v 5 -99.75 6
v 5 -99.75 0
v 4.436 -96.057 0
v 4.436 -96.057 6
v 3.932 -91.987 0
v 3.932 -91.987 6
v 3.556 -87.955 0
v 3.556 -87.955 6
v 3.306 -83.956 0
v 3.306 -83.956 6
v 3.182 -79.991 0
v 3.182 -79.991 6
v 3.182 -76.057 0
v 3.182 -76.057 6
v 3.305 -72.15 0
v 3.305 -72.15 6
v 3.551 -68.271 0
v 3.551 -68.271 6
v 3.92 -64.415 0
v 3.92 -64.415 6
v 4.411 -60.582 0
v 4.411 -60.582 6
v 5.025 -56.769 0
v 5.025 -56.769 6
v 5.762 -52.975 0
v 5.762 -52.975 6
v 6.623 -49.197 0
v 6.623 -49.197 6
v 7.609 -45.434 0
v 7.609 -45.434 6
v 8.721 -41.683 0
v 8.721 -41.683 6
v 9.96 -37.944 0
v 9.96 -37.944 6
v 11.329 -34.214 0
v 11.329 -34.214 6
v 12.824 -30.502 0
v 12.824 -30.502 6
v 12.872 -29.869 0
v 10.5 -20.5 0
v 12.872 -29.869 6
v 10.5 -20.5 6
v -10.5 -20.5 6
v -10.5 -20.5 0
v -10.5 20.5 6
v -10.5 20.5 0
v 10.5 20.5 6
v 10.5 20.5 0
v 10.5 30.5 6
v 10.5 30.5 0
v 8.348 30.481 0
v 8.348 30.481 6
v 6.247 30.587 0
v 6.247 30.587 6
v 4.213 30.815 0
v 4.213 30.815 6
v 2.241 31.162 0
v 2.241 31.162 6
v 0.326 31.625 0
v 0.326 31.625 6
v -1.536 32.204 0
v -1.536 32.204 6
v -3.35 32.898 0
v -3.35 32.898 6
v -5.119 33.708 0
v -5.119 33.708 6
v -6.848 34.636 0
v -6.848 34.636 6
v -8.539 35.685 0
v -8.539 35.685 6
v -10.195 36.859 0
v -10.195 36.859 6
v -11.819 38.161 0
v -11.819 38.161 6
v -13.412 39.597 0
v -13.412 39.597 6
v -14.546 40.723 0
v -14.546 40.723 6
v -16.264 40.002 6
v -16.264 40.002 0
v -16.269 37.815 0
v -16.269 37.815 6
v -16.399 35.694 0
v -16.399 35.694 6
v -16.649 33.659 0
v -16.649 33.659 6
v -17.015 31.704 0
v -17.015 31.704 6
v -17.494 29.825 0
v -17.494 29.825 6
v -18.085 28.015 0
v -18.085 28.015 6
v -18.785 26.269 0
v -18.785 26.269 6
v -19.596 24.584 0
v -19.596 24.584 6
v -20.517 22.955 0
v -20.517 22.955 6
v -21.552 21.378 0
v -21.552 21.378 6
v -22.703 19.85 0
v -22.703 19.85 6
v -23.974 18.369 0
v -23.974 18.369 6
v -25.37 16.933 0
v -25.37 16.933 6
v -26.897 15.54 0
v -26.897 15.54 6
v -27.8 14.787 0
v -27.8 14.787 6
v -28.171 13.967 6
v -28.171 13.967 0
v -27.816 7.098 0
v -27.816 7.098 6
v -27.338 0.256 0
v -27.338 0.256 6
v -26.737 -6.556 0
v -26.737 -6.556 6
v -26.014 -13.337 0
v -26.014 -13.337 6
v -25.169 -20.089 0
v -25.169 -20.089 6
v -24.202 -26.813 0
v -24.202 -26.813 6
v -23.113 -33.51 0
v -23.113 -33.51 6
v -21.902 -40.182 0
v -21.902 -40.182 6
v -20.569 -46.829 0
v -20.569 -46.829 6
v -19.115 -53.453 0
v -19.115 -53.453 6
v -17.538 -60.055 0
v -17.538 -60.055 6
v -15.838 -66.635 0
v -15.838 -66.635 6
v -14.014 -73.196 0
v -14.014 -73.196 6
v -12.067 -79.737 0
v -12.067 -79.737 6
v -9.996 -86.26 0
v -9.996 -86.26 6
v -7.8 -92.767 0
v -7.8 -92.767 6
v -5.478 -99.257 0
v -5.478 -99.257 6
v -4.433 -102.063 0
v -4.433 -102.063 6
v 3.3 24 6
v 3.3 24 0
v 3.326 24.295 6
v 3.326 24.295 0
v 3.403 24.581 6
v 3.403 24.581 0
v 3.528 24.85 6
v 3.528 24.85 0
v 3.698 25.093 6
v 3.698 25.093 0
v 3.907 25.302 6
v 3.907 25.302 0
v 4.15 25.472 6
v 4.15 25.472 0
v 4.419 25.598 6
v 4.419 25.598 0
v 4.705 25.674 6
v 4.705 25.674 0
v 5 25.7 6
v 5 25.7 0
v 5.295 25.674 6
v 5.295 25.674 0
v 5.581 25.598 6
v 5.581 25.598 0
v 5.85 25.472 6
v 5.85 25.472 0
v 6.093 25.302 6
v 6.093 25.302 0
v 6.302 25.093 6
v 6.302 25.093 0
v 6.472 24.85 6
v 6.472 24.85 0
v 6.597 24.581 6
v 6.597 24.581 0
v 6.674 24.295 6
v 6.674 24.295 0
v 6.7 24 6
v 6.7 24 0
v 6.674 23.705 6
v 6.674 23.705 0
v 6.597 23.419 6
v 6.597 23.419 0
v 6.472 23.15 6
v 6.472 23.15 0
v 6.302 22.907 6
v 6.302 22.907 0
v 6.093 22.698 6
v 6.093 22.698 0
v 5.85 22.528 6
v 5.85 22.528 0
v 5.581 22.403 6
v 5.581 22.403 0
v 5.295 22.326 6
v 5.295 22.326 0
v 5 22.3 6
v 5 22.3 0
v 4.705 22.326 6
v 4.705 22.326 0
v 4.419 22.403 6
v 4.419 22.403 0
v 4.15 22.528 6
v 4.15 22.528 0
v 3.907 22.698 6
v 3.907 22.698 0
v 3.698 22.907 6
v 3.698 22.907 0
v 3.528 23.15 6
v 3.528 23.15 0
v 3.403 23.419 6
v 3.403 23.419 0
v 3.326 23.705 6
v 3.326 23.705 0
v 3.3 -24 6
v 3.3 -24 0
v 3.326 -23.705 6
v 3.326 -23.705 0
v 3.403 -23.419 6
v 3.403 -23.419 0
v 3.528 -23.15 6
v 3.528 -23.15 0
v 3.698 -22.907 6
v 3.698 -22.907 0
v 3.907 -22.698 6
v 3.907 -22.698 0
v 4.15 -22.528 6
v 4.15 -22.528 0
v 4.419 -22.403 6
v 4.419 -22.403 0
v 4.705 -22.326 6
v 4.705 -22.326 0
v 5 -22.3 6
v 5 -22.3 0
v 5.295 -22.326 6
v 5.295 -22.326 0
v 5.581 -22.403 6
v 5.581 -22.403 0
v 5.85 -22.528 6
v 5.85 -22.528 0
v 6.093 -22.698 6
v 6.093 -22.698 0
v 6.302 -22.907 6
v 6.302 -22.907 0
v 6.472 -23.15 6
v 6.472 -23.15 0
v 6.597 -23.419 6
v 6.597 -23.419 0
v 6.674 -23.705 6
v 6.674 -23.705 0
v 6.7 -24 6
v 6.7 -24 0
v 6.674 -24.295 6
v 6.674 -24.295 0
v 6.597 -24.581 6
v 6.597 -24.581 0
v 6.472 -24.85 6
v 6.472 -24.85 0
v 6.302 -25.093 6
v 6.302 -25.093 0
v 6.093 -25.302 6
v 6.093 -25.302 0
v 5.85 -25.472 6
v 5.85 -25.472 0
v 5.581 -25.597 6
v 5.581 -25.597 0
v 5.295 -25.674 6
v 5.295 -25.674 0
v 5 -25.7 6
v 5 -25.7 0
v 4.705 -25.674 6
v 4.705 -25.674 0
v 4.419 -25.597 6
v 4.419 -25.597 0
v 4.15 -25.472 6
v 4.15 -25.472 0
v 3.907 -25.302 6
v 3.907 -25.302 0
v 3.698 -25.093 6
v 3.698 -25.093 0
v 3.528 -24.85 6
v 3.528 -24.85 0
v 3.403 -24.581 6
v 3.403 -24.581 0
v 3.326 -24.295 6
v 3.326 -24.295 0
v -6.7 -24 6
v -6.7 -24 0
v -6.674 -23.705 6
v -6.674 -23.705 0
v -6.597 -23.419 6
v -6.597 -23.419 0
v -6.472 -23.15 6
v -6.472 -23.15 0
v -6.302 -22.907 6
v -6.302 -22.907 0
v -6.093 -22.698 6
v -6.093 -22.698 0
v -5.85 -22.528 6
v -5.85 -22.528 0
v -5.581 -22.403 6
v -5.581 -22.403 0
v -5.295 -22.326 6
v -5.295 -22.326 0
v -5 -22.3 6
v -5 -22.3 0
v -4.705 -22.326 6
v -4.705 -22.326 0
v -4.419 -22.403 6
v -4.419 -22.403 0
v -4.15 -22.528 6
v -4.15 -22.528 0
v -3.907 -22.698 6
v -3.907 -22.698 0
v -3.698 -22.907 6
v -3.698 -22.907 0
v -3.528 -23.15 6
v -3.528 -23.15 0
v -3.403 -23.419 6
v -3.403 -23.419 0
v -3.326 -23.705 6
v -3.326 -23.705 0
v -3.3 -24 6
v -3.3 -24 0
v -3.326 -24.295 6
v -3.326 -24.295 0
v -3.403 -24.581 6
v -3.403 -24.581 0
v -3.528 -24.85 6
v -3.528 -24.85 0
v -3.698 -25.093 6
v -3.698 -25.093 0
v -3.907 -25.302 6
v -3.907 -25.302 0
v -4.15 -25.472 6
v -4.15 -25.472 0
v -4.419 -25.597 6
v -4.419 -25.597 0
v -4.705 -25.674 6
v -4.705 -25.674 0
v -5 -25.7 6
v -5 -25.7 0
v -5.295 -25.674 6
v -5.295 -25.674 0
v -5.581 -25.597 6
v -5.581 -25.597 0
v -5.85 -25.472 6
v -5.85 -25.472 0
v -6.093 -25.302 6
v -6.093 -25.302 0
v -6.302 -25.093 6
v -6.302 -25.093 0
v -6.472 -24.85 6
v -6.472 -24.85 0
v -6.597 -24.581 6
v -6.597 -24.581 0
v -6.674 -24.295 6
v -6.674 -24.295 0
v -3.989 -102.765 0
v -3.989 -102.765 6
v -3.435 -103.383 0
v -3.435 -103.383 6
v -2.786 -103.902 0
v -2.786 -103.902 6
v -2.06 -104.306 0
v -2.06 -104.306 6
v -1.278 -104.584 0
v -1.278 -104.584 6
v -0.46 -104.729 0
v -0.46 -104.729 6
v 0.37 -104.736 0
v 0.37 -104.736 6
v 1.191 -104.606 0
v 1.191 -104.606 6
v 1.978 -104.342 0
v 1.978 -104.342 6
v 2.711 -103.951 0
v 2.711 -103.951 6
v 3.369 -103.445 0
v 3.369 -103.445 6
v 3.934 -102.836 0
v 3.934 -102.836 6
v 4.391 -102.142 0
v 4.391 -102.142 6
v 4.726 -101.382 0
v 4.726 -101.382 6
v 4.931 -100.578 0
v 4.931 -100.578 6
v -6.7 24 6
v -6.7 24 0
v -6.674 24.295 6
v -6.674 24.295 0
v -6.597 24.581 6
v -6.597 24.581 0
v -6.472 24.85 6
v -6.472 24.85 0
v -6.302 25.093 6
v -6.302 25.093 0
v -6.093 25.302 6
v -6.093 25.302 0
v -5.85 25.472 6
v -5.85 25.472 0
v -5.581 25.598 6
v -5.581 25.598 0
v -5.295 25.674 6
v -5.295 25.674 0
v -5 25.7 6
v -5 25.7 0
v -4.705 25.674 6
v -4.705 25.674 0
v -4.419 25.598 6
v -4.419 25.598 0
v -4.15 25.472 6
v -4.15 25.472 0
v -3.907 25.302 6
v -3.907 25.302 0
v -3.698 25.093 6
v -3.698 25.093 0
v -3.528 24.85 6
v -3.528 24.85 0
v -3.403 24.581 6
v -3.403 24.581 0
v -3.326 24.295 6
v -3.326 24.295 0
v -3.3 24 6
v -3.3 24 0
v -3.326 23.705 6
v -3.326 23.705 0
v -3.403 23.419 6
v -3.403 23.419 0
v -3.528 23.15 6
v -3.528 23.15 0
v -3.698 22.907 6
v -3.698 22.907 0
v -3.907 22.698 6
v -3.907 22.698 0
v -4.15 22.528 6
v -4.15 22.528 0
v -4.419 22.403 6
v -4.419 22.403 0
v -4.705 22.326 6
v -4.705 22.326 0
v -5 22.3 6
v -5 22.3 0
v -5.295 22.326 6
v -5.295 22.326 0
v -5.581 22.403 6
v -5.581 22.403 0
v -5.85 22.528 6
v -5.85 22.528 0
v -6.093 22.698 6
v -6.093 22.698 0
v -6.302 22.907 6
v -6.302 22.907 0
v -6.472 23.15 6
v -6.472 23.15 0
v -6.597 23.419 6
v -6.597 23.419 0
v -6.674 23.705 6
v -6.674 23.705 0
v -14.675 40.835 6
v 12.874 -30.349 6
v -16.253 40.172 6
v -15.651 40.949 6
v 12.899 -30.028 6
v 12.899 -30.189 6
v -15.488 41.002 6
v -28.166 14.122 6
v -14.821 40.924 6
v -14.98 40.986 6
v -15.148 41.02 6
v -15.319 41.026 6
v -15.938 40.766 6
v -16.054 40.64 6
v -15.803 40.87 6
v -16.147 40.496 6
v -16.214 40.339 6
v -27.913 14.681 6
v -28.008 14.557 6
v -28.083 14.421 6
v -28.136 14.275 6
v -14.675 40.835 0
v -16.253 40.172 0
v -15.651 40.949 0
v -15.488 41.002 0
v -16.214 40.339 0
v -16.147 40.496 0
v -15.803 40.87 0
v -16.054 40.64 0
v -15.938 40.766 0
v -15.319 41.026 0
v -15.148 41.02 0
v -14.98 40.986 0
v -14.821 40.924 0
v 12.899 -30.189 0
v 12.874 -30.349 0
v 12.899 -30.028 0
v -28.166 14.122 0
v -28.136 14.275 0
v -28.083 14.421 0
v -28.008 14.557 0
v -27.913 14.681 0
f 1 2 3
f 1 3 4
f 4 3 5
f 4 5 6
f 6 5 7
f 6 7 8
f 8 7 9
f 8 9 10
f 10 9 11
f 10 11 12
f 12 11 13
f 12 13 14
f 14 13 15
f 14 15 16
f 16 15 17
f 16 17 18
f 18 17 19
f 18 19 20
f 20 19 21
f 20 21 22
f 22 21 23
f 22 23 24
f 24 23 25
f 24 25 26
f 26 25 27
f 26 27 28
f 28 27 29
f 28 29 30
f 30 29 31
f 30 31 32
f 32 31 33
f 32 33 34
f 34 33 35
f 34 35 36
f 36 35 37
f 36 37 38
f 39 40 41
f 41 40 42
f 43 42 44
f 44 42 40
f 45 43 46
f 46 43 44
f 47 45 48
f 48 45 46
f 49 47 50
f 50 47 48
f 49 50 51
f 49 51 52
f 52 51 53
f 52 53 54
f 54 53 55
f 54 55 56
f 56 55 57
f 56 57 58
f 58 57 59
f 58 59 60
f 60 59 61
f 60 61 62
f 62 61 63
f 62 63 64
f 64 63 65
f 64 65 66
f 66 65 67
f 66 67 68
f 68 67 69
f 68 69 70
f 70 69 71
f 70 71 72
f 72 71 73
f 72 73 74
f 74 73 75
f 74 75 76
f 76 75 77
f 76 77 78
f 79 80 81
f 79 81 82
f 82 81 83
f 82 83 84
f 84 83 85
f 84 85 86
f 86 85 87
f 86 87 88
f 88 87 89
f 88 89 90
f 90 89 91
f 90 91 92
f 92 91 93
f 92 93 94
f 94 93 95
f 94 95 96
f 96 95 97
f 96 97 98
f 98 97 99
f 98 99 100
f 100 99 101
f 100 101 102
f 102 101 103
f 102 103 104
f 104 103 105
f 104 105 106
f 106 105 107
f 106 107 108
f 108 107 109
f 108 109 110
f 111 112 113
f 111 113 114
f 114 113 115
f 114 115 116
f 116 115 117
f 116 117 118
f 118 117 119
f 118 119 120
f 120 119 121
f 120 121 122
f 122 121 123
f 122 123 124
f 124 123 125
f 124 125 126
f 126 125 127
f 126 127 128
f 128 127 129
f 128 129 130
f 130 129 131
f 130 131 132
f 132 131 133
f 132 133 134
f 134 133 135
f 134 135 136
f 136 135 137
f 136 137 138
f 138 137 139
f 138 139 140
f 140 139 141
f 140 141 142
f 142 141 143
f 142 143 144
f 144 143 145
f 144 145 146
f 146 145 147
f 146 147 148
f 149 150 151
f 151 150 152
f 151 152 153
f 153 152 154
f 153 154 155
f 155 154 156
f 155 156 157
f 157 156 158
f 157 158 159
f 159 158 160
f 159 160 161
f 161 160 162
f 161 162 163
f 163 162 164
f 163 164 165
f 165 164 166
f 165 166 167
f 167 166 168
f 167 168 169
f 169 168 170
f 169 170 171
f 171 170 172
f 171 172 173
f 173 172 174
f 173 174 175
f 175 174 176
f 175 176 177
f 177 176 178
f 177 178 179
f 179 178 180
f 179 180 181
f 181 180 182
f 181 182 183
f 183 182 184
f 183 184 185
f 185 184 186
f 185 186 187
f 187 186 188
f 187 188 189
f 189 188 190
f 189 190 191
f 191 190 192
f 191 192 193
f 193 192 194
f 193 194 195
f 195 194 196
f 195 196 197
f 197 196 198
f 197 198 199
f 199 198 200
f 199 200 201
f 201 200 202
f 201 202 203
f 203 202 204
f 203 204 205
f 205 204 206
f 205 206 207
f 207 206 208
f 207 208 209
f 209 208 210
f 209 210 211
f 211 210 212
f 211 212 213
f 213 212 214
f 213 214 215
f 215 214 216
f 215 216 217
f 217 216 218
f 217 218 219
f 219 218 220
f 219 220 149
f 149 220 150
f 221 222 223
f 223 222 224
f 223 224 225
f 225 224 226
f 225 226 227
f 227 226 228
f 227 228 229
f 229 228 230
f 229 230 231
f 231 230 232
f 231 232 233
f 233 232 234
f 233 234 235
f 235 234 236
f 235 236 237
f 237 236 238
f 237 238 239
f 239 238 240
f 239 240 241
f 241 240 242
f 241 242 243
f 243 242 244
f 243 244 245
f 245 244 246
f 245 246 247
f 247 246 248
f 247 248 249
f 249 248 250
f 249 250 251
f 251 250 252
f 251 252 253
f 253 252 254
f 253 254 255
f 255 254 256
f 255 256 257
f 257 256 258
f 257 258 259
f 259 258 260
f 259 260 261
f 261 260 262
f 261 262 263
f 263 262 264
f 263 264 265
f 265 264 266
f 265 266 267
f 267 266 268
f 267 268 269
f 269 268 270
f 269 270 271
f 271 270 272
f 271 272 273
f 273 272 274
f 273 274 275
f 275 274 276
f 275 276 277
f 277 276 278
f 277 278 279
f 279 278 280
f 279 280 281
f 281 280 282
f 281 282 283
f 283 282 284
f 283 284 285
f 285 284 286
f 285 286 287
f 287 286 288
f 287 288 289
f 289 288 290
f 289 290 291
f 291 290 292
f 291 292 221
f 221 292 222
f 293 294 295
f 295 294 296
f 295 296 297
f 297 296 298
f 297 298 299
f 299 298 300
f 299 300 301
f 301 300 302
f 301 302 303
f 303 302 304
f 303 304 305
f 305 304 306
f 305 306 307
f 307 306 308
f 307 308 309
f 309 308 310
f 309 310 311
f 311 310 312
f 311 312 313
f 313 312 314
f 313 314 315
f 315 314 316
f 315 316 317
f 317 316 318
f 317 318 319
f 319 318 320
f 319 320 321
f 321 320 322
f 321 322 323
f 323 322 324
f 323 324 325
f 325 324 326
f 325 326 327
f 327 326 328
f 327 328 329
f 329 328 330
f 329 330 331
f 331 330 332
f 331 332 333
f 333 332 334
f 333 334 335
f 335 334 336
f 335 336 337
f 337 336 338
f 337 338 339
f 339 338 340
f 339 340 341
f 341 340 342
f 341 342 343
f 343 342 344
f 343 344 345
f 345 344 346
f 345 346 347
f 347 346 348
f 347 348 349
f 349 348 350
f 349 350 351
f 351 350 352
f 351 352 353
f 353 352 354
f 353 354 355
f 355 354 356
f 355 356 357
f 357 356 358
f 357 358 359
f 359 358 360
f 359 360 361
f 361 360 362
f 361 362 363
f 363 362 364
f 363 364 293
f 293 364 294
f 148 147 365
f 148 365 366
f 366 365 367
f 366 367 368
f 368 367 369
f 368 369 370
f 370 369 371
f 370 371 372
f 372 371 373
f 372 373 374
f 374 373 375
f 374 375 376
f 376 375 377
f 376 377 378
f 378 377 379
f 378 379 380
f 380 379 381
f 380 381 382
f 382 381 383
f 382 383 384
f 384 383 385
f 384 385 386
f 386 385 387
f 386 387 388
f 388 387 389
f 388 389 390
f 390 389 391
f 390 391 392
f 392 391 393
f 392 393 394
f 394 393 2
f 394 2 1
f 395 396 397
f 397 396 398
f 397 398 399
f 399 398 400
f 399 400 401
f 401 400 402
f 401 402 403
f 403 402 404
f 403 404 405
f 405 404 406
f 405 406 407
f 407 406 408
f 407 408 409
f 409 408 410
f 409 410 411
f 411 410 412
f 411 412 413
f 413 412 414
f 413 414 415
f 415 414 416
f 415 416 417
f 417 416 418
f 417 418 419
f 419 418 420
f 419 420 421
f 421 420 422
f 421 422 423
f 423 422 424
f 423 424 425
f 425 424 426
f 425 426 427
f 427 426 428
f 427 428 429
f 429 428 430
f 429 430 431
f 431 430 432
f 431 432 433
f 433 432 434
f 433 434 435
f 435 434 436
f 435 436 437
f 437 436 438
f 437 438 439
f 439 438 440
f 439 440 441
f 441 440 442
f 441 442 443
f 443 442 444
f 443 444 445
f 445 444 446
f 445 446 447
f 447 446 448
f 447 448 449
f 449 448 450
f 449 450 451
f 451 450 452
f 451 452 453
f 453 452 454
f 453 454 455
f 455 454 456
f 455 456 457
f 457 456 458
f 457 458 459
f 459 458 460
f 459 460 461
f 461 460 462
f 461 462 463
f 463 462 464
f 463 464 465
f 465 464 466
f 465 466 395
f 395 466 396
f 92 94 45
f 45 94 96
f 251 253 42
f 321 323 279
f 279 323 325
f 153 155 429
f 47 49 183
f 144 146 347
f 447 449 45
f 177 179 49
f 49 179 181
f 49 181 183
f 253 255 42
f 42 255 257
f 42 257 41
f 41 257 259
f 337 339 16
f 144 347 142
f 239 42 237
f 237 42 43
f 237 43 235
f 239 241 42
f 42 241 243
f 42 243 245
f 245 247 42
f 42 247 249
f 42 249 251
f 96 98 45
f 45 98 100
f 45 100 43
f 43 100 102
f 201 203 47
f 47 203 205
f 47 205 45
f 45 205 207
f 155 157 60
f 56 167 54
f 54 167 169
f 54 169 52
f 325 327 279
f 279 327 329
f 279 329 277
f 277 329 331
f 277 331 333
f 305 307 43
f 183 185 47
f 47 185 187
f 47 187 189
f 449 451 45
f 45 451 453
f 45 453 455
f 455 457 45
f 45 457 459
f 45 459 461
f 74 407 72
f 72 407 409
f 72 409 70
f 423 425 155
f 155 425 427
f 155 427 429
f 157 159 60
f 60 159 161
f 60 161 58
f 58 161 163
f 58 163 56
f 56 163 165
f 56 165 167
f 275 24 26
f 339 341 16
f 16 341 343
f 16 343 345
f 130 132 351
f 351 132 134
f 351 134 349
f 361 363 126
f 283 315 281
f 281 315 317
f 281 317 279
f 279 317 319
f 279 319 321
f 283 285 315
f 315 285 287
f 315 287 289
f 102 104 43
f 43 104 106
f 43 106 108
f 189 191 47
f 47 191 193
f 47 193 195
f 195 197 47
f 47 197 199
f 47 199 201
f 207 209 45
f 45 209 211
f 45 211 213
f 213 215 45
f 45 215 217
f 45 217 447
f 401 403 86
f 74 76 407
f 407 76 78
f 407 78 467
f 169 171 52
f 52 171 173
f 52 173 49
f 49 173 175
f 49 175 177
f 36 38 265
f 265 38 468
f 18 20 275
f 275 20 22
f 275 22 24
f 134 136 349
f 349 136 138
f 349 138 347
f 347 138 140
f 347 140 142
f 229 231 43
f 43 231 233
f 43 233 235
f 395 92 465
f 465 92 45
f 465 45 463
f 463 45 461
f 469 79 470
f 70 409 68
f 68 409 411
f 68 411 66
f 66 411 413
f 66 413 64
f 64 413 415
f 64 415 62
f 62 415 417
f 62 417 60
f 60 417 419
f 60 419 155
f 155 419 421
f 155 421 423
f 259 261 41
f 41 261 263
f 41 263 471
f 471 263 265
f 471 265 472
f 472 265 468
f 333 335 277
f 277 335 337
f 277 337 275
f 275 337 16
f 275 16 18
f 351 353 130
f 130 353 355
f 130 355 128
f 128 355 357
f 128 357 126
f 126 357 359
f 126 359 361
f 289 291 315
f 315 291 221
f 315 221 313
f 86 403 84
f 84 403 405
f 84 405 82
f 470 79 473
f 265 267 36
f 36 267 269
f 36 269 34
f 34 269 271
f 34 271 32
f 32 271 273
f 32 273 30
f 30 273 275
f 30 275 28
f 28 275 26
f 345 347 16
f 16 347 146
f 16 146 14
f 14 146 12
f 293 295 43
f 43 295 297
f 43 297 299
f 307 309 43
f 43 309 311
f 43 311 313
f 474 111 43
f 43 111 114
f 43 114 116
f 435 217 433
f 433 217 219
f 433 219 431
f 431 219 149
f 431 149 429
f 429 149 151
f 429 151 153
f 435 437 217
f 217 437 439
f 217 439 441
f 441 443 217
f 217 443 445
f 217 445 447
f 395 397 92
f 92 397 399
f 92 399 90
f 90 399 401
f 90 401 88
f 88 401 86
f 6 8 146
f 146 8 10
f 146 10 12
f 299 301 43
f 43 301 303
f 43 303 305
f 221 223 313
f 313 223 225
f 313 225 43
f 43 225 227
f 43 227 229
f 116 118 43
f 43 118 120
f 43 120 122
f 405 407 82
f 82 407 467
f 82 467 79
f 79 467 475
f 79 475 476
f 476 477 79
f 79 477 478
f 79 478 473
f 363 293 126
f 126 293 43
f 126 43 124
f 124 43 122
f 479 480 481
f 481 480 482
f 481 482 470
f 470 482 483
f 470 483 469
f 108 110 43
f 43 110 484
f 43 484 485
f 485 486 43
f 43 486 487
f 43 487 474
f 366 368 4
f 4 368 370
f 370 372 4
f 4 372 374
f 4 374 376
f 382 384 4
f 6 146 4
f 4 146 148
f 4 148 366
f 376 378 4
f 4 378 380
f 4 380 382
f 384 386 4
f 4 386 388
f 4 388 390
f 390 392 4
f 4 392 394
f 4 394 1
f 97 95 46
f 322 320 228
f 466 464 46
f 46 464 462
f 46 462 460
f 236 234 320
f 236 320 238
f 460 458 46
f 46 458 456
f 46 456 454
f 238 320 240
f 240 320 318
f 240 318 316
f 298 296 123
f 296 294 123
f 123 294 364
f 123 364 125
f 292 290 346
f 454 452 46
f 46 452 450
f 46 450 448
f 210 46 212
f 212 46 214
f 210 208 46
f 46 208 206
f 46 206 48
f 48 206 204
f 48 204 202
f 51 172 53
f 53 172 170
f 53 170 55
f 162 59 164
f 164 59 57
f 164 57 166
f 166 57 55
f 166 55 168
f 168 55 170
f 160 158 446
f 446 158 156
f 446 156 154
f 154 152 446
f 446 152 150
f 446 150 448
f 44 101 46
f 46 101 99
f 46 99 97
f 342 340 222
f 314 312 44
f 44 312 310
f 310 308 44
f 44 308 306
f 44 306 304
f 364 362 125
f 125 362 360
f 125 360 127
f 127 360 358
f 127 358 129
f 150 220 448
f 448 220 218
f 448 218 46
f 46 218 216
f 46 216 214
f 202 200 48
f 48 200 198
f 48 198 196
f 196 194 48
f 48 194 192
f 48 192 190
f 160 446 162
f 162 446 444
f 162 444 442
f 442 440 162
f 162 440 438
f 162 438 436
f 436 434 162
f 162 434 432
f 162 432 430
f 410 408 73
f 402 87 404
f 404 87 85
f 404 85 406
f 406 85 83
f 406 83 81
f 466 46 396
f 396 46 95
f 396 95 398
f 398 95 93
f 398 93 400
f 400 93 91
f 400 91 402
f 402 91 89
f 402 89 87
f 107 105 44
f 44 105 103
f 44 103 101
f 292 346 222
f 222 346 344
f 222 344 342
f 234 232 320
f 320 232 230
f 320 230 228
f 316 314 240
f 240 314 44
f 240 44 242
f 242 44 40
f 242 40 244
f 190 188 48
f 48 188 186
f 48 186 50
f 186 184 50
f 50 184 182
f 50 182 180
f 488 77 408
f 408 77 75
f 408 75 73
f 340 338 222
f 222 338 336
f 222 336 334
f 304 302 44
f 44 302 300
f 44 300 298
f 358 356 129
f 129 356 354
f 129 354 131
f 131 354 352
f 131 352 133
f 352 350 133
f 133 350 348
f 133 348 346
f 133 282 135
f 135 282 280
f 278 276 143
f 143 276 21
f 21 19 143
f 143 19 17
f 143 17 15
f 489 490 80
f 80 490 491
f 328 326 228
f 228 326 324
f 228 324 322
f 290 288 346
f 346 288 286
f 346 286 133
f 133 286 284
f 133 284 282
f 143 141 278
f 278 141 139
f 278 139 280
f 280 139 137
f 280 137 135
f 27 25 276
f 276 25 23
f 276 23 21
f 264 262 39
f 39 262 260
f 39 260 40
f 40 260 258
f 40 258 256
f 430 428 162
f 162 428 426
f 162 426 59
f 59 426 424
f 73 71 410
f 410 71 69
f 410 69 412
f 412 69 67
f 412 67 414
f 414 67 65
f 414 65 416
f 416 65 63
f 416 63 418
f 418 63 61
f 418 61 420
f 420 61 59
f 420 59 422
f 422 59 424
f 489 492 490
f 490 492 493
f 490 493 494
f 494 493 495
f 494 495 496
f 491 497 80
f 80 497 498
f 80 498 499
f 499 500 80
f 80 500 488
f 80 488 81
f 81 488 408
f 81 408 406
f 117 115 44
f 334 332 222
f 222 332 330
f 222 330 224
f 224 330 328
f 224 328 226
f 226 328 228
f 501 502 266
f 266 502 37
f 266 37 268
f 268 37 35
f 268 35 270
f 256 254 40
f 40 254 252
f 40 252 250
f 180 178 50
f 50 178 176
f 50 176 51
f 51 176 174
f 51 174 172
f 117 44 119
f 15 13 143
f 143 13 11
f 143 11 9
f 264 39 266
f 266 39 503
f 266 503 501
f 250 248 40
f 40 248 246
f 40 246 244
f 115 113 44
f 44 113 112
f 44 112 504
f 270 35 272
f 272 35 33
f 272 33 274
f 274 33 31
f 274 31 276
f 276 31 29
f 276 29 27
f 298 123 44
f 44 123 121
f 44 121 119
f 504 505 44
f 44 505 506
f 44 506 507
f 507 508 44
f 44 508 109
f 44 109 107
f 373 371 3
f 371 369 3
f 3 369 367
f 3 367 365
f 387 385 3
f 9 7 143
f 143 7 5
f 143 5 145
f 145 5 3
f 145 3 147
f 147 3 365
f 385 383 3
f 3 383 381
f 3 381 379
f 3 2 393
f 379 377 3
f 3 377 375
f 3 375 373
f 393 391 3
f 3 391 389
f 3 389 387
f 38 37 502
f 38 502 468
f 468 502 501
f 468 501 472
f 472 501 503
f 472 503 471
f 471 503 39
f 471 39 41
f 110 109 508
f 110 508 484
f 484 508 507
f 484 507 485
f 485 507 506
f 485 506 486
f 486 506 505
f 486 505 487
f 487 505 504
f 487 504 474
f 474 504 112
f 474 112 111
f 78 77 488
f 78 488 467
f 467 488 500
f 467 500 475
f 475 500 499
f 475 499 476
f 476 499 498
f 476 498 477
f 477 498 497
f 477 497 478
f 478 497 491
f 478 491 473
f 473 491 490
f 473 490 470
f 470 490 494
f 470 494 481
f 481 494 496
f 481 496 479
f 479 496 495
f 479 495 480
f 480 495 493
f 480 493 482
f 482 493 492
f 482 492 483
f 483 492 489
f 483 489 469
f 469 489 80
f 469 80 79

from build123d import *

# Parameters (mm, degrees)
SKETCH1_R           = 1.7
BOSS_EXTRUDE1_DEPTH = 6
FILLET1_R           = 1


with BuildPart() as part:
    # Sketch1 → Boss-Extrude1 (new body)
    # profile 1 of 2: a face of its own
    with BuildSketch(Plane.XY):
        with BuildLine():
            Line((10.5, -20.5), (-10.5, -20.5))
            Line((-10.5, -20.5), (-10.5, 20.5))
            Line((-10.5, 20.5), (10.5, 20.5))
            Line((10.5, 20.5), (10.5, 30.5))
            add(Edge.make_bspline(
                [(10.5, 30.5), (-5.463373434, 29.901564355), (-16.430762864, 42.802630452)],
                knots=[0, 0, 0, 1, 1, 1], degree=2))
            add(Edge.make_bspline(
                [(-16.430762864, 42.802630452), (-14.784114241, 25.00850842), (-28.192589157, 14.474851635)],
                knots=[0, 0, 0, 1, 1, 1], degree=2))
            add(Edge.make_bspline(
                [(-28.192589157, 14.474851635), (-25.736030858, -44.983019262), (-4.860661097, -100.922166241)],
                knots=[0, 0, 0, 0.989904815, 0.989904815, 0.989904815], degree=2))
            ThreePointArc((-4.860661097, -100.922166241), (-1.370198617, -94.941408132), (4.748458048, -98.184066997))
            add(Edge.make_bspline(
                [(12.954080919, -30.194198618), (-0.768915938, -62.557526438), (4.748458048, -98.184066997)],
                knots=[0, 0, 0, 0.978516684, 0.978516684, 0.978516684], degree=2))
            Line((12.954080919, -30.194198618), (10.5, -20.5))
        make_face()
        with Locations((-5, -24)):
            Circle(SKETCH1_R, mode=Mode.SUBTRACT)
        with Locations((5, -24)):
            Circle(SKETCH1_R, mode=Mode.SUBTRACT)
        with Locations((-5, 24)):
            Circle(SKETCH1_R, mode=Mode.SUBTRACT)
        with Locations((5, 24)):
            Circle(SKETCH1_R, mode=Mode.SUBTRACT)
    # profile 2 of 2: a face of its own
    with BuildSketch(Plane.XY):
        with BuildLine():
            add(Edge.make_bspline(
                [(4.748458048, -98.184066997), (4.86959189, -98.96624703), (5, -99.75)],
                knots=[0.978516684, 0.978516684, 0.978516684, 1, 1, 1], degree=2))
            ThreePointArc((4.748458048, -98.184066997), (-1.370198617, -94.941408132), (-4.860661097, -100.922166241))
            add(Edge.make_bspline(
                [(-4.860661097, -100.922166241), (-4.647771209, -101.492641346), (-4.432965727, -102.062750497)],
                knots=[0.989904815, 0.989904815, 0.989904815, 1, 1, 1], degree=2))
            ThreePointArc((-4.432965727, -102.062750497), (1.190624073, -104.606172806), (5, -99.75))
        make_face()
    extrude(amount=BOSS_EXTRUDE1_DEPTH)

    # Fillet1
    fillet1_edges = [part.edges().sort_by_distance(p)[0] for p in [
        (-28.192589157, 14.474851635, 3),
        (-16.430762864, 42.802630452, 3),
        (12.954080919, -30.194198618, 3),
    ]]
    fillet(fillet1_edges, radius=FILLET1_R)


solid = part.part
